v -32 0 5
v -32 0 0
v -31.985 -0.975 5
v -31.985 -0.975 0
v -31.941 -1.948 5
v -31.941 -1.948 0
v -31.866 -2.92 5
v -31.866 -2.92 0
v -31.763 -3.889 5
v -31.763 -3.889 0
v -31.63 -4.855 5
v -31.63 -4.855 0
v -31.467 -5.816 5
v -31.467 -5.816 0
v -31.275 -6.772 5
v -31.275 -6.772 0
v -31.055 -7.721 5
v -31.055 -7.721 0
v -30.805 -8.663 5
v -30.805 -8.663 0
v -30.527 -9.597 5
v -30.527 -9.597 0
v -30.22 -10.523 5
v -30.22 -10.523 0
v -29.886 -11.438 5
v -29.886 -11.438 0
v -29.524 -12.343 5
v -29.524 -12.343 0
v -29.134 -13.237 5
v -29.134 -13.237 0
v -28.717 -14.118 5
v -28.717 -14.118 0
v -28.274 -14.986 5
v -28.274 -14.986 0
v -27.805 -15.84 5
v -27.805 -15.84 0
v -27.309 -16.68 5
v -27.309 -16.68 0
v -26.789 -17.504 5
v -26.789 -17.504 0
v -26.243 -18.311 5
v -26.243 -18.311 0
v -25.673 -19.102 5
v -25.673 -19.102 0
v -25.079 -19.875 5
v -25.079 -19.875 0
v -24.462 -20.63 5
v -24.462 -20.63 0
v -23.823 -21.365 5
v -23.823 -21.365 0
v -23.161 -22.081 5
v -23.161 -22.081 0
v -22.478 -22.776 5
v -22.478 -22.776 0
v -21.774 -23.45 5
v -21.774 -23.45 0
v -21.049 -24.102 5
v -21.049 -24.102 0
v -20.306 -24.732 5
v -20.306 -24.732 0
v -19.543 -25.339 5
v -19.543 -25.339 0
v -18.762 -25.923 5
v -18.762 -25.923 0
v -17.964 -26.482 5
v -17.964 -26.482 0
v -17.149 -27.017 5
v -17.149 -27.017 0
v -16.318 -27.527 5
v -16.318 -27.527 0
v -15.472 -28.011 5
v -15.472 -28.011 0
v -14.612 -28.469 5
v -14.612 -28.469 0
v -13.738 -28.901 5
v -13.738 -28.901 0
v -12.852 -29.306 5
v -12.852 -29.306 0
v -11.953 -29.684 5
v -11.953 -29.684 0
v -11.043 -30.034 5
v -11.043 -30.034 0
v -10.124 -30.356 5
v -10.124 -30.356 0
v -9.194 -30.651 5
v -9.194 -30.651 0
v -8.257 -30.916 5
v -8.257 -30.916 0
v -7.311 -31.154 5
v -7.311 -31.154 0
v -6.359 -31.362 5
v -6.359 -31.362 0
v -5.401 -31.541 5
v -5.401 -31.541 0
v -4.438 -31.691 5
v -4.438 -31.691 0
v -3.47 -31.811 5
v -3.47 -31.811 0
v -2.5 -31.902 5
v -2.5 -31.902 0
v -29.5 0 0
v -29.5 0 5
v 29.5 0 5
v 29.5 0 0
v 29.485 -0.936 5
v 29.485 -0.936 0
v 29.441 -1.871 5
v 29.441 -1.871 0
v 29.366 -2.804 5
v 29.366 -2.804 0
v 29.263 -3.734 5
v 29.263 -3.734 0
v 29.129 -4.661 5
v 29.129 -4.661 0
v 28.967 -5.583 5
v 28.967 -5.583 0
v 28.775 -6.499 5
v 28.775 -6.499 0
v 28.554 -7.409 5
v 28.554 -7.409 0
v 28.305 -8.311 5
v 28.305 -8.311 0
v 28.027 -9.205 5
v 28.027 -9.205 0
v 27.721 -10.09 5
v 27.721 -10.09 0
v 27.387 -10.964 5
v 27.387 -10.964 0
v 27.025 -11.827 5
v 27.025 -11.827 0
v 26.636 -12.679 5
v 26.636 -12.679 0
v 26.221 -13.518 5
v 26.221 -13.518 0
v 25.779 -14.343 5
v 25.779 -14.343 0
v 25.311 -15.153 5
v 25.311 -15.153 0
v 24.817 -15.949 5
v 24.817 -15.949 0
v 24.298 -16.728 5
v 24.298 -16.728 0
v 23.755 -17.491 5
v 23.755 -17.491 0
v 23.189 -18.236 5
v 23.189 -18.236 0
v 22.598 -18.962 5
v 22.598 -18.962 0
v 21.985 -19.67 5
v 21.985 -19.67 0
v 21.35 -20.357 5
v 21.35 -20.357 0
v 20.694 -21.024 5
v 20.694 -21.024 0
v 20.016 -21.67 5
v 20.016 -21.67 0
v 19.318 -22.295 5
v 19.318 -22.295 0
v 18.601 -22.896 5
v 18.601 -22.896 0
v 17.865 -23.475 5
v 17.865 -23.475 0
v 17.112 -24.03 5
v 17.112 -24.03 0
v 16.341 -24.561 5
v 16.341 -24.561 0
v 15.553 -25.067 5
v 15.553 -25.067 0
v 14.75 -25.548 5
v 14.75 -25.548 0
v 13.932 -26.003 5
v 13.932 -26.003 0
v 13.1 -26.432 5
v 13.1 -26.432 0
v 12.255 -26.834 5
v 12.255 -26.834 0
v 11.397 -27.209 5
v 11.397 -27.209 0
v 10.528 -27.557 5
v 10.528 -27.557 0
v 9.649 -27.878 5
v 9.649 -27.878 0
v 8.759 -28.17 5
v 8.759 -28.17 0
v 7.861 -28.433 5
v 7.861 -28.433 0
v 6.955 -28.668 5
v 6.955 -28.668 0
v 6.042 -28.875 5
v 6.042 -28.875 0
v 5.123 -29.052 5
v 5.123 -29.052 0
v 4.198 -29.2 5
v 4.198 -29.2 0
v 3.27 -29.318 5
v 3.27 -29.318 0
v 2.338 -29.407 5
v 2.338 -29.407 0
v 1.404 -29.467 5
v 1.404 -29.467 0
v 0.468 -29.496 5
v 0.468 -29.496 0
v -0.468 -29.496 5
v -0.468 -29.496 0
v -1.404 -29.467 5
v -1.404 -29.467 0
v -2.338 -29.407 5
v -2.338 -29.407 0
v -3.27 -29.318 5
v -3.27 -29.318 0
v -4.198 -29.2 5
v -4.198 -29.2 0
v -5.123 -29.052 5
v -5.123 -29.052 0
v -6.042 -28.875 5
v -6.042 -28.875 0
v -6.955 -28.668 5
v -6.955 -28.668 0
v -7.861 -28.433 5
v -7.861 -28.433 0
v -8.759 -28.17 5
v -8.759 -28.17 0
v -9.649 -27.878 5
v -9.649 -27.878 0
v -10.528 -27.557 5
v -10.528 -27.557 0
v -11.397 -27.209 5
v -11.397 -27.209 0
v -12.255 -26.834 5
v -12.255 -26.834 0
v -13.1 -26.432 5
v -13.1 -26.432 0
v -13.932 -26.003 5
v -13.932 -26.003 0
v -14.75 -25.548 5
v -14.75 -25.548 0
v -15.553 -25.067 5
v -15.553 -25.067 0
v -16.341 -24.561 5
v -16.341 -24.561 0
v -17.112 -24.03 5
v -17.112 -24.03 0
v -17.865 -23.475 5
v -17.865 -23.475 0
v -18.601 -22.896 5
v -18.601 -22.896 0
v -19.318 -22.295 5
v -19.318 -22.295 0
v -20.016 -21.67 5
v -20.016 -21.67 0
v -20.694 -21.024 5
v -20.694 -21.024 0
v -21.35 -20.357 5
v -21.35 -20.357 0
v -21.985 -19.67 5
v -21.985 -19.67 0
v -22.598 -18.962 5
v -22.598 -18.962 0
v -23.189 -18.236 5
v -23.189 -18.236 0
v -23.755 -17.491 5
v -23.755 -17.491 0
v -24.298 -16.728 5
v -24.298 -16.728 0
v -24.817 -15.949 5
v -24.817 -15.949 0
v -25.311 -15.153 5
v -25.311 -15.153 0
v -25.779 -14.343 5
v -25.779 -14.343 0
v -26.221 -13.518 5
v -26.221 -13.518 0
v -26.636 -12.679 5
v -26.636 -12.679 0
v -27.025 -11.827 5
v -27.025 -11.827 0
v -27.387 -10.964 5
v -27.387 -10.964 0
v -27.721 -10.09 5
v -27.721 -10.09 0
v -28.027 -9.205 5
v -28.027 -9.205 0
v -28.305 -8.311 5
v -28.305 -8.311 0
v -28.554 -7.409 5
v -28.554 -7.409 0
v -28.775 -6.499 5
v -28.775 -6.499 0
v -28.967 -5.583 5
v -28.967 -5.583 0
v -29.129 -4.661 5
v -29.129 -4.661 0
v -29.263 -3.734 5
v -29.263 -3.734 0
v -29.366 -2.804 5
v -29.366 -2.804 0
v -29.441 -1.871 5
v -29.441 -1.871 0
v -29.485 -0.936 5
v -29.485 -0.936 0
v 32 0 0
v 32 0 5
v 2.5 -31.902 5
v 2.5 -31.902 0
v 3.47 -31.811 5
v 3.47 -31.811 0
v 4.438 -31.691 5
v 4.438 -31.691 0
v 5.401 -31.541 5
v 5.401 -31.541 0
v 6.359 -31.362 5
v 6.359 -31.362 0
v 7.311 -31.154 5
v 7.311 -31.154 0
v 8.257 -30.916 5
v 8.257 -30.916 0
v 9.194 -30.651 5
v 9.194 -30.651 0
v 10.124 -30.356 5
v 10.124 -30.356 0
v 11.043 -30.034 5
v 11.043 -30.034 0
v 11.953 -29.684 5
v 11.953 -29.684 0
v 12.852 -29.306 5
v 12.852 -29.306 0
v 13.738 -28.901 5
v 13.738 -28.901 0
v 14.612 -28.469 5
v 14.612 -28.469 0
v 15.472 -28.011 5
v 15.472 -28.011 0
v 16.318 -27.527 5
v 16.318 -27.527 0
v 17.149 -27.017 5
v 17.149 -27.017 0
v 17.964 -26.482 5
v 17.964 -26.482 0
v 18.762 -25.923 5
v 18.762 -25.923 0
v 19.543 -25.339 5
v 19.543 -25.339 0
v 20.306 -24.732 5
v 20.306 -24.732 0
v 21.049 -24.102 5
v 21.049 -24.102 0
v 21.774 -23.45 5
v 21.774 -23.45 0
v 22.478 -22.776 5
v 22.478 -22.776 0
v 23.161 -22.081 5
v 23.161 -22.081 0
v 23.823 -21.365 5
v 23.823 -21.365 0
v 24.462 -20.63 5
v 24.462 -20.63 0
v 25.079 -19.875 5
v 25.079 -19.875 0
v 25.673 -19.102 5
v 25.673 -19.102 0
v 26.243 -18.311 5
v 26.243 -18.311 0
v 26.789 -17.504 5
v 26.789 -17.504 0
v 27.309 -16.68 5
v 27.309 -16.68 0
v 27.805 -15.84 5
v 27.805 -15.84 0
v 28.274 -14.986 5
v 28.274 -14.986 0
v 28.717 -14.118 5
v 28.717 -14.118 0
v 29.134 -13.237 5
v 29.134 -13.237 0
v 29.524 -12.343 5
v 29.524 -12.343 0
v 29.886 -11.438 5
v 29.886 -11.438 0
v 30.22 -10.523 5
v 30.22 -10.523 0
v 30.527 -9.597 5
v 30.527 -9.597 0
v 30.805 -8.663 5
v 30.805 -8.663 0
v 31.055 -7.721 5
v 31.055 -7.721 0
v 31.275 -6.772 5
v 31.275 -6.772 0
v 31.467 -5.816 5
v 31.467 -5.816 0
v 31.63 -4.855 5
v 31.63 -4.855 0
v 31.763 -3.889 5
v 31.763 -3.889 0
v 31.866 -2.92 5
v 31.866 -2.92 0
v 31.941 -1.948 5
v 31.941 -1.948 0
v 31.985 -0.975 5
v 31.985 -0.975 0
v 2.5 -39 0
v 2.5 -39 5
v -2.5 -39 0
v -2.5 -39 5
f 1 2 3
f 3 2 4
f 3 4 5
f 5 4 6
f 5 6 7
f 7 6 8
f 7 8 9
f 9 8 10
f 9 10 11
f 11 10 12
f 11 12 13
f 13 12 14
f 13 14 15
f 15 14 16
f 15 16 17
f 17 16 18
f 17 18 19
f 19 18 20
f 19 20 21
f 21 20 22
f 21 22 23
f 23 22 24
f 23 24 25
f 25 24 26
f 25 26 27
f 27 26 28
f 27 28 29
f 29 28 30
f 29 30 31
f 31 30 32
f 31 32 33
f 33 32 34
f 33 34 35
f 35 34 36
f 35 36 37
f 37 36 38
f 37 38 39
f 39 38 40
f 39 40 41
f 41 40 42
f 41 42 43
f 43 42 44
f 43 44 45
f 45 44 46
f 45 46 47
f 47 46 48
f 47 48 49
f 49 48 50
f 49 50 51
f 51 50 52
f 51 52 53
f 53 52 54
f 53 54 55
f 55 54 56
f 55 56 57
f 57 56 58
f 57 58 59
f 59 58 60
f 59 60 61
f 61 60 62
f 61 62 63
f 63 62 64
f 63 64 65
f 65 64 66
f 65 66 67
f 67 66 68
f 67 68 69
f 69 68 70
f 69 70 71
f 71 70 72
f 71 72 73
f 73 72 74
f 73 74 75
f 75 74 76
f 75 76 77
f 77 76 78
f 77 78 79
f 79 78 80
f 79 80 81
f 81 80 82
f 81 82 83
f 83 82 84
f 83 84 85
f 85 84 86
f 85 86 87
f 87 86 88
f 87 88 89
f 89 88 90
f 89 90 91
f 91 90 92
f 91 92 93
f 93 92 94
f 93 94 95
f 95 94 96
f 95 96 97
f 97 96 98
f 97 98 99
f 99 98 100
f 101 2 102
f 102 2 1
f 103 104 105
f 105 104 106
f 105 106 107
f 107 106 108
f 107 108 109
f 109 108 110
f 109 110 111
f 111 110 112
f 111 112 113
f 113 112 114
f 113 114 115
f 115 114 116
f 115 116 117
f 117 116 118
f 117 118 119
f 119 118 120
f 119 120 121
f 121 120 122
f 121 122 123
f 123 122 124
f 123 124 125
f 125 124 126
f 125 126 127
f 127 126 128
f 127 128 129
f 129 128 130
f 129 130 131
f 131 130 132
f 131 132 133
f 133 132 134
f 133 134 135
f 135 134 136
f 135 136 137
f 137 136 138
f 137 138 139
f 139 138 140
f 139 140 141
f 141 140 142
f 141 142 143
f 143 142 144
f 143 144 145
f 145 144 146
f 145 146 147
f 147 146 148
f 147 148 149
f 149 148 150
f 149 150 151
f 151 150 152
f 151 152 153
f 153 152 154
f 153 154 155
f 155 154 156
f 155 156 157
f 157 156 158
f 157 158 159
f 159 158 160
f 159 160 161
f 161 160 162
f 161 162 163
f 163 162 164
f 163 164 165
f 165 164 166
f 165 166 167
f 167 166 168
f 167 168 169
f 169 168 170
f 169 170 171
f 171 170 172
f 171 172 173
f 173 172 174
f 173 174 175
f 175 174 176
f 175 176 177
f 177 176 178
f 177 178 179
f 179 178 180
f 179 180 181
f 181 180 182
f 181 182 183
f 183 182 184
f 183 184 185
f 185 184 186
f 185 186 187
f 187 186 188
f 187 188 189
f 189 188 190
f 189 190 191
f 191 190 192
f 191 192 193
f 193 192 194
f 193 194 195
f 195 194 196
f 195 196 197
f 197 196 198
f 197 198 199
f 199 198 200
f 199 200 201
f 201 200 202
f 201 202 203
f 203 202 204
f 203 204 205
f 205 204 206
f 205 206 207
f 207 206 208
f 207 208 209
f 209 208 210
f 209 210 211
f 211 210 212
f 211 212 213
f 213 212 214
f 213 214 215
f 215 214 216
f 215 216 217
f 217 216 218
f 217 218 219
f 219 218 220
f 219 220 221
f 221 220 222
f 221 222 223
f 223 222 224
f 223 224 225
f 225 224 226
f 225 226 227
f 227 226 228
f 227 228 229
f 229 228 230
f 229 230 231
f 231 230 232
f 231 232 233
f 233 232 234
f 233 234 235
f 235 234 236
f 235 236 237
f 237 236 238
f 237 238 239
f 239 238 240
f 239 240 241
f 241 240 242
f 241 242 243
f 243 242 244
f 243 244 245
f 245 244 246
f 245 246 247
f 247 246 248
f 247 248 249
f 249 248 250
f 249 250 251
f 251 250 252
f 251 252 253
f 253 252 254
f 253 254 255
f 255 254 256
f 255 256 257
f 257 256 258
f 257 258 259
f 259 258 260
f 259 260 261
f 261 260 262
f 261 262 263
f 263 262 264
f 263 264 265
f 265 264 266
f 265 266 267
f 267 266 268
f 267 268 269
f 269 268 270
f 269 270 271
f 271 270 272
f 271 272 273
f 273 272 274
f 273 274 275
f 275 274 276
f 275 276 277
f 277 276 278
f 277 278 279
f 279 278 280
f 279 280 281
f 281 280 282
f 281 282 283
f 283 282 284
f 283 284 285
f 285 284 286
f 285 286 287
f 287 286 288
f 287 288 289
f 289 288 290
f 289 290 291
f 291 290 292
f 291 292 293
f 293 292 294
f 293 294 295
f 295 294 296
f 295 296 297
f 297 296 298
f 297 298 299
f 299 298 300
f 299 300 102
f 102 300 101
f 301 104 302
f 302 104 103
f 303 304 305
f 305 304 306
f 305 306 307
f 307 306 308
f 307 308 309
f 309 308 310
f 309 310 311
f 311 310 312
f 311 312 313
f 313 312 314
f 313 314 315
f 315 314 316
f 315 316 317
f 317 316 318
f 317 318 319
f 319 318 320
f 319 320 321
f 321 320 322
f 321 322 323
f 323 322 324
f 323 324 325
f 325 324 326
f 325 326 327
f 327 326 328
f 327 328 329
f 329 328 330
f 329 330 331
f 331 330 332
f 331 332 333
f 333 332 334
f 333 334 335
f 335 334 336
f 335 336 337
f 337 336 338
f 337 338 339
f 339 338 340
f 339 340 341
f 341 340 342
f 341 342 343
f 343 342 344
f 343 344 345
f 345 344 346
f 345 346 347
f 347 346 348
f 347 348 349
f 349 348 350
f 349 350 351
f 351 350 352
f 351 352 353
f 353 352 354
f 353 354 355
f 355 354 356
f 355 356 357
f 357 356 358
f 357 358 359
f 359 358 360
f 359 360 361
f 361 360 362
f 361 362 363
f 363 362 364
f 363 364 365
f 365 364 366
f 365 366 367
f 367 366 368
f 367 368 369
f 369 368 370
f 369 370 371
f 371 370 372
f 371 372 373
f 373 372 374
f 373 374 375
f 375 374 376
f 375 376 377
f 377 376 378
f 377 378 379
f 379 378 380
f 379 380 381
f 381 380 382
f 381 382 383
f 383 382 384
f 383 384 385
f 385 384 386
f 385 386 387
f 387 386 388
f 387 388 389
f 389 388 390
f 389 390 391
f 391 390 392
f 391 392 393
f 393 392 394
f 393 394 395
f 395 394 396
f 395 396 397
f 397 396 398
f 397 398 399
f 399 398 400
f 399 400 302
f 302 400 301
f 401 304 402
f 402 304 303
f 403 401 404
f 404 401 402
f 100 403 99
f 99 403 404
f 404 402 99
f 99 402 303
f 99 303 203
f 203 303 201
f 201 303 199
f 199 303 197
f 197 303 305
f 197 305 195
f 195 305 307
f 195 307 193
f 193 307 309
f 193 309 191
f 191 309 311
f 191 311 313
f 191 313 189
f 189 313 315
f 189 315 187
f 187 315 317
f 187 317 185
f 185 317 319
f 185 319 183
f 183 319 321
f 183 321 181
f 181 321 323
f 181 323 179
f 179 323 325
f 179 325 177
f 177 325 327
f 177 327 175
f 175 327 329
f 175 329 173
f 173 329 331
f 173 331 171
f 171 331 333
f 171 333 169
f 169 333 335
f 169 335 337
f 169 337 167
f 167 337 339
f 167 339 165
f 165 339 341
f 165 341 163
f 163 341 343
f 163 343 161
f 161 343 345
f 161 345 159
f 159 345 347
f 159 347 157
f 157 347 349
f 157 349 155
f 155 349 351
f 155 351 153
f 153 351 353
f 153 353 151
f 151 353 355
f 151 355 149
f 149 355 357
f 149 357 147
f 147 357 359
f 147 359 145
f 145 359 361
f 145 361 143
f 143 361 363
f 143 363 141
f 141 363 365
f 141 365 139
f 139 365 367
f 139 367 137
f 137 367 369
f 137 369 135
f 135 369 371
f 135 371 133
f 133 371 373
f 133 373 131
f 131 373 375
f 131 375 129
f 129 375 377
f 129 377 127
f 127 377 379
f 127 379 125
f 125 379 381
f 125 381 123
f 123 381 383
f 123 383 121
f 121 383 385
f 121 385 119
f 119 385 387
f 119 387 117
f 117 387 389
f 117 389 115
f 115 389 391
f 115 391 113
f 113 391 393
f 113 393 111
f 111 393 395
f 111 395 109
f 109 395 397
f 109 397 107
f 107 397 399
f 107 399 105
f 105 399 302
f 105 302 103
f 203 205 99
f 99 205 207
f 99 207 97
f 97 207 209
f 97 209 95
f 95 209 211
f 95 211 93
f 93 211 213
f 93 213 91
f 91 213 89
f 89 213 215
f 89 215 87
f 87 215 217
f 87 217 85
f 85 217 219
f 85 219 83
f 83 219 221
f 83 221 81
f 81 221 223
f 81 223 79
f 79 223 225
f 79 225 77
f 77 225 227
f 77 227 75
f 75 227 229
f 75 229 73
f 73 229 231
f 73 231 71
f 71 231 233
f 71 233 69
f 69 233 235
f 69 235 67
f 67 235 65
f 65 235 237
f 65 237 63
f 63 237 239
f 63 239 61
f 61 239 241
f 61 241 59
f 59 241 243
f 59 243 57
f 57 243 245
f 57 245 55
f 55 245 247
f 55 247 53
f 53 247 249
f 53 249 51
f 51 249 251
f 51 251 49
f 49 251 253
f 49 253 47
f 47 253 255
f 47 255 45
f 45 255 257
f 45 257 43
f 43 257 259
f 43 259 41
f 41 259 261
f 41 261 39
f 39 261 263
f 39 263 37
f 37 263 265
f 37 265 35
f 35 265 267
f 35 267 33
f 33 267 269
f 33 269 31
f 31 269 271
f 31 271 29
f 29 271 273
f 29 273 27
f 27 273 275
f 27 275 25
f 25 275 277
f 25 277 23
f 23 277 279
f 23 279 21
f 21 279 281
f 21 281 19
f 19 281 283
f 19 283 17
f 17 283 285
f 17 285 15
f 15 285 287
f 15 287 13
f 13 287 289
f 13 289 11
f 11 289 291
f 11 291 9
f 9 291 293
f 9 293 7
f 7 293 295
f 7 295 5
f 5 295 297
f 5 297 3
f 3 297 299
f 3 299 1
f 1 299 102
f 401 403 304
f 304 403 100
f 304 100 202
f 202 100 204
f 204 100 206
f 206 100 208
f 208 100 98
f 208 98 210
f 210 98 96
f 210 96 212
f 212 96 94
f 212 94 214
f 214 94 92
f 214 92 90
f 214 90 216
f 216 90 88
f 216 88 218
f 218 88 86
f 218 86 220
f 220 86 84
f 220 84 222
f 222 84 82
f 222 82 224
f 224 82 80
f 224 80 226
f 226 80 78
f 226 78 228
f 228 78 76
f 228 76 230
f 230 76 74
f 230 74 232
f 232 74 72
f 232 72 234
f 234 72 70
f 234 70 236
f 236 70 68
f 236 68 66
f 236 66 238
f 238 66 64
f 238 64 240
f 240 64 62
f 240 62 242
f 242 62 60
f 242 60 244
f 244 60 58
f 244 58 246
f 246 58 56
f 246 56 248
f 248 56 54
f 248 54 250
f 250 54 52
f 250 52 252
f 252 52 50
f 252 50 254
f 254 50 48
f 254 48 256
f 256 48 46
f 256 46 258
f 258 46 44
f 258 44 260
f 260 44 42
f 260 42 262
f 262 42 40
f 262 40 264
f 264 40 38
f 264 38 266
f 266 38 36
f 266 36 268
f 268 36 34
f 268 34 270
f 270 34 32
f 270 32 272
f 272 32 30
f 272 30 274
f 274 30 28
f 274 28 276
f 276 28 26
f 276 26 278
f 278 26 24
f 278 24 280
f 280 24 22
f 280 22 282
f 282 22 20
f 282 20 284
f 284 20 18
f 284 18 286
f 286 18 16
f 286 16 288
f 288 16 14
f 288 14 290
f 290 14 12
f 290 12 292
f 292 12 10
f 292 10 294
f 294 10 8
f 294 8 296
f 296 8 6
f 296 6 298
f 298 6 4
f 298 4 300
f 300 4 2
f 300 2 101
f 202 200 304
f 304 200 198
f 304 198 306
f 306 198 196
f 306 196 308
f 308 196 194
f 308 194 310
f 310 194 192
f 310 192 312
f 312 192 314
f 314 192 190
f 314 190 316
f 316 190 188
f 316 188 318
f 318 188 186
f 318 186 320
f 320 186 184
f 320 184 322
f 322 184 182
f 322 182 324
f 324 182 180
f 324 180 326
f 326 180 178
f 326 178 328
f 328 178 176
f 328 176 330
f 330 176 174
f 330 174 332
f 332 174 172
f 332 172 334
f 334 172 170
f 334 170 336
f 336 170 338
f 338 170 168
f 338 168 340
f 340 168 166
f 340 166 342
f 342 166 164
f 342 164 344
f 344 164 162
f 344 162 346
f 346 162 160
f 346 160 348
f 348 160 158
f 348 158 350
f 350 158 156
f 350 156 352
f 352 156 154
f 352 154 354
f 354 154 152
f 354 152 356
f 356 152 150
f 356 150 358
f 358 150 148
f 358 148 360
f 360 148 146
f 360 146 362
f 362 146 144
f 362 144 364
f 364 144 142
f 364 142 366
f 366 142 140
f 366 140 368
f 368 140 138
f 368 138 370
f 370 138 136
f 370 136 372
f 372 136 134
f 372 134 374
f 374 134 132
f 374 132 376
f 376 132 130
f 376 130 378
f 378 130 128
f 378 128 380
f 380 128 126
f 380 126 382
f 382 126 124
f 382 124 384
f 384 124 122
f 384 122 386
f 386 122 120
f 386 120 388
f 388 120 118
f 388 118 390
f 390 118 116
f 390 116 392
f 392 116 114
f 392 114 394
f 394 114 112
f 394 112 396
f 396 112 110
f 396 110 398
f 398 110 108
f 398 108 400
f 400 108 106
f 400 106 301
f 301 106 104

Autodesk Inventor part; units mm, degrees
ref_plane "YZ Plane" through (0, 0, 0) normal (1, 0, 0) x (0, 1, 0)
ref_plane "XZ Plane" through (0, 0, 0) normal (0, 1, 0) x (-1, 0, 0)
ref_plane "XY Plane" through (0, 0, 0) normal (0, 0, 1) x (1, 0, 0)
sketch "Sketch1" plane through (0, 0, 0) normal (0, 0, 1) x (1, 0, 0)
  arc A0 (-25.4018, -15) -> (25.4018, -15) centre (0, 0) ccw
  line L0 (2.5, -32) -> (2.5, -39)
  line L1 (2.5, -39) -> (-2.5, -39)
  line L2 (-2.5, -39) -> (-2.5, -32)
  line L3 (-2.5, -32) -> (-2.5, -31.9022)
  line L4 (2.5, -32) -> (2.5, -31.9022)
  arc A1 (-28.2666, -15) -> (-2.5, -31.9022) centre (0, 0) ccw
  arc A2 (2.5, -31.9022) -> (28.2666, -15) centre (0, 0) ccw
  arc A3 (-27.7534, -10) -> (27.7534, -10) centre (0, 0) ccw
  arc A4 (-30.3974, -10) -> (-2.5, -31.9022) centre (0, 0) ccw
  arc A5 (2.5, -31.9022) -> (30.3974, -10) centre (0, 0) ccw
  arc A6 (-29.5, 0) -> (29.5, 0) centre (0, 0) ccw
  line L5 (-32, 0) -> (-29.5, 0)
  line L6 (29.5, 0) -> (32, 0)
  arc A7 (2.5, -31.9022) -> (32, 0) centre (0, 0) ccw
  arc A8 (-32, 0) -> (-2.5, -31.9022) centre (0, 0) ccw
  point P0 (25.4018, -15)
  point P1 (-28.2666, -15)
  point P2 (27.7534, -10)
  point P3 (-30.3974, -10)
  dimension "d43" = 5
  dimension "d64" = 7
extrude "Extrusion8" add sketch "Sketch1" along normal blind 5
properties part number "Clip_TestFitV1"
